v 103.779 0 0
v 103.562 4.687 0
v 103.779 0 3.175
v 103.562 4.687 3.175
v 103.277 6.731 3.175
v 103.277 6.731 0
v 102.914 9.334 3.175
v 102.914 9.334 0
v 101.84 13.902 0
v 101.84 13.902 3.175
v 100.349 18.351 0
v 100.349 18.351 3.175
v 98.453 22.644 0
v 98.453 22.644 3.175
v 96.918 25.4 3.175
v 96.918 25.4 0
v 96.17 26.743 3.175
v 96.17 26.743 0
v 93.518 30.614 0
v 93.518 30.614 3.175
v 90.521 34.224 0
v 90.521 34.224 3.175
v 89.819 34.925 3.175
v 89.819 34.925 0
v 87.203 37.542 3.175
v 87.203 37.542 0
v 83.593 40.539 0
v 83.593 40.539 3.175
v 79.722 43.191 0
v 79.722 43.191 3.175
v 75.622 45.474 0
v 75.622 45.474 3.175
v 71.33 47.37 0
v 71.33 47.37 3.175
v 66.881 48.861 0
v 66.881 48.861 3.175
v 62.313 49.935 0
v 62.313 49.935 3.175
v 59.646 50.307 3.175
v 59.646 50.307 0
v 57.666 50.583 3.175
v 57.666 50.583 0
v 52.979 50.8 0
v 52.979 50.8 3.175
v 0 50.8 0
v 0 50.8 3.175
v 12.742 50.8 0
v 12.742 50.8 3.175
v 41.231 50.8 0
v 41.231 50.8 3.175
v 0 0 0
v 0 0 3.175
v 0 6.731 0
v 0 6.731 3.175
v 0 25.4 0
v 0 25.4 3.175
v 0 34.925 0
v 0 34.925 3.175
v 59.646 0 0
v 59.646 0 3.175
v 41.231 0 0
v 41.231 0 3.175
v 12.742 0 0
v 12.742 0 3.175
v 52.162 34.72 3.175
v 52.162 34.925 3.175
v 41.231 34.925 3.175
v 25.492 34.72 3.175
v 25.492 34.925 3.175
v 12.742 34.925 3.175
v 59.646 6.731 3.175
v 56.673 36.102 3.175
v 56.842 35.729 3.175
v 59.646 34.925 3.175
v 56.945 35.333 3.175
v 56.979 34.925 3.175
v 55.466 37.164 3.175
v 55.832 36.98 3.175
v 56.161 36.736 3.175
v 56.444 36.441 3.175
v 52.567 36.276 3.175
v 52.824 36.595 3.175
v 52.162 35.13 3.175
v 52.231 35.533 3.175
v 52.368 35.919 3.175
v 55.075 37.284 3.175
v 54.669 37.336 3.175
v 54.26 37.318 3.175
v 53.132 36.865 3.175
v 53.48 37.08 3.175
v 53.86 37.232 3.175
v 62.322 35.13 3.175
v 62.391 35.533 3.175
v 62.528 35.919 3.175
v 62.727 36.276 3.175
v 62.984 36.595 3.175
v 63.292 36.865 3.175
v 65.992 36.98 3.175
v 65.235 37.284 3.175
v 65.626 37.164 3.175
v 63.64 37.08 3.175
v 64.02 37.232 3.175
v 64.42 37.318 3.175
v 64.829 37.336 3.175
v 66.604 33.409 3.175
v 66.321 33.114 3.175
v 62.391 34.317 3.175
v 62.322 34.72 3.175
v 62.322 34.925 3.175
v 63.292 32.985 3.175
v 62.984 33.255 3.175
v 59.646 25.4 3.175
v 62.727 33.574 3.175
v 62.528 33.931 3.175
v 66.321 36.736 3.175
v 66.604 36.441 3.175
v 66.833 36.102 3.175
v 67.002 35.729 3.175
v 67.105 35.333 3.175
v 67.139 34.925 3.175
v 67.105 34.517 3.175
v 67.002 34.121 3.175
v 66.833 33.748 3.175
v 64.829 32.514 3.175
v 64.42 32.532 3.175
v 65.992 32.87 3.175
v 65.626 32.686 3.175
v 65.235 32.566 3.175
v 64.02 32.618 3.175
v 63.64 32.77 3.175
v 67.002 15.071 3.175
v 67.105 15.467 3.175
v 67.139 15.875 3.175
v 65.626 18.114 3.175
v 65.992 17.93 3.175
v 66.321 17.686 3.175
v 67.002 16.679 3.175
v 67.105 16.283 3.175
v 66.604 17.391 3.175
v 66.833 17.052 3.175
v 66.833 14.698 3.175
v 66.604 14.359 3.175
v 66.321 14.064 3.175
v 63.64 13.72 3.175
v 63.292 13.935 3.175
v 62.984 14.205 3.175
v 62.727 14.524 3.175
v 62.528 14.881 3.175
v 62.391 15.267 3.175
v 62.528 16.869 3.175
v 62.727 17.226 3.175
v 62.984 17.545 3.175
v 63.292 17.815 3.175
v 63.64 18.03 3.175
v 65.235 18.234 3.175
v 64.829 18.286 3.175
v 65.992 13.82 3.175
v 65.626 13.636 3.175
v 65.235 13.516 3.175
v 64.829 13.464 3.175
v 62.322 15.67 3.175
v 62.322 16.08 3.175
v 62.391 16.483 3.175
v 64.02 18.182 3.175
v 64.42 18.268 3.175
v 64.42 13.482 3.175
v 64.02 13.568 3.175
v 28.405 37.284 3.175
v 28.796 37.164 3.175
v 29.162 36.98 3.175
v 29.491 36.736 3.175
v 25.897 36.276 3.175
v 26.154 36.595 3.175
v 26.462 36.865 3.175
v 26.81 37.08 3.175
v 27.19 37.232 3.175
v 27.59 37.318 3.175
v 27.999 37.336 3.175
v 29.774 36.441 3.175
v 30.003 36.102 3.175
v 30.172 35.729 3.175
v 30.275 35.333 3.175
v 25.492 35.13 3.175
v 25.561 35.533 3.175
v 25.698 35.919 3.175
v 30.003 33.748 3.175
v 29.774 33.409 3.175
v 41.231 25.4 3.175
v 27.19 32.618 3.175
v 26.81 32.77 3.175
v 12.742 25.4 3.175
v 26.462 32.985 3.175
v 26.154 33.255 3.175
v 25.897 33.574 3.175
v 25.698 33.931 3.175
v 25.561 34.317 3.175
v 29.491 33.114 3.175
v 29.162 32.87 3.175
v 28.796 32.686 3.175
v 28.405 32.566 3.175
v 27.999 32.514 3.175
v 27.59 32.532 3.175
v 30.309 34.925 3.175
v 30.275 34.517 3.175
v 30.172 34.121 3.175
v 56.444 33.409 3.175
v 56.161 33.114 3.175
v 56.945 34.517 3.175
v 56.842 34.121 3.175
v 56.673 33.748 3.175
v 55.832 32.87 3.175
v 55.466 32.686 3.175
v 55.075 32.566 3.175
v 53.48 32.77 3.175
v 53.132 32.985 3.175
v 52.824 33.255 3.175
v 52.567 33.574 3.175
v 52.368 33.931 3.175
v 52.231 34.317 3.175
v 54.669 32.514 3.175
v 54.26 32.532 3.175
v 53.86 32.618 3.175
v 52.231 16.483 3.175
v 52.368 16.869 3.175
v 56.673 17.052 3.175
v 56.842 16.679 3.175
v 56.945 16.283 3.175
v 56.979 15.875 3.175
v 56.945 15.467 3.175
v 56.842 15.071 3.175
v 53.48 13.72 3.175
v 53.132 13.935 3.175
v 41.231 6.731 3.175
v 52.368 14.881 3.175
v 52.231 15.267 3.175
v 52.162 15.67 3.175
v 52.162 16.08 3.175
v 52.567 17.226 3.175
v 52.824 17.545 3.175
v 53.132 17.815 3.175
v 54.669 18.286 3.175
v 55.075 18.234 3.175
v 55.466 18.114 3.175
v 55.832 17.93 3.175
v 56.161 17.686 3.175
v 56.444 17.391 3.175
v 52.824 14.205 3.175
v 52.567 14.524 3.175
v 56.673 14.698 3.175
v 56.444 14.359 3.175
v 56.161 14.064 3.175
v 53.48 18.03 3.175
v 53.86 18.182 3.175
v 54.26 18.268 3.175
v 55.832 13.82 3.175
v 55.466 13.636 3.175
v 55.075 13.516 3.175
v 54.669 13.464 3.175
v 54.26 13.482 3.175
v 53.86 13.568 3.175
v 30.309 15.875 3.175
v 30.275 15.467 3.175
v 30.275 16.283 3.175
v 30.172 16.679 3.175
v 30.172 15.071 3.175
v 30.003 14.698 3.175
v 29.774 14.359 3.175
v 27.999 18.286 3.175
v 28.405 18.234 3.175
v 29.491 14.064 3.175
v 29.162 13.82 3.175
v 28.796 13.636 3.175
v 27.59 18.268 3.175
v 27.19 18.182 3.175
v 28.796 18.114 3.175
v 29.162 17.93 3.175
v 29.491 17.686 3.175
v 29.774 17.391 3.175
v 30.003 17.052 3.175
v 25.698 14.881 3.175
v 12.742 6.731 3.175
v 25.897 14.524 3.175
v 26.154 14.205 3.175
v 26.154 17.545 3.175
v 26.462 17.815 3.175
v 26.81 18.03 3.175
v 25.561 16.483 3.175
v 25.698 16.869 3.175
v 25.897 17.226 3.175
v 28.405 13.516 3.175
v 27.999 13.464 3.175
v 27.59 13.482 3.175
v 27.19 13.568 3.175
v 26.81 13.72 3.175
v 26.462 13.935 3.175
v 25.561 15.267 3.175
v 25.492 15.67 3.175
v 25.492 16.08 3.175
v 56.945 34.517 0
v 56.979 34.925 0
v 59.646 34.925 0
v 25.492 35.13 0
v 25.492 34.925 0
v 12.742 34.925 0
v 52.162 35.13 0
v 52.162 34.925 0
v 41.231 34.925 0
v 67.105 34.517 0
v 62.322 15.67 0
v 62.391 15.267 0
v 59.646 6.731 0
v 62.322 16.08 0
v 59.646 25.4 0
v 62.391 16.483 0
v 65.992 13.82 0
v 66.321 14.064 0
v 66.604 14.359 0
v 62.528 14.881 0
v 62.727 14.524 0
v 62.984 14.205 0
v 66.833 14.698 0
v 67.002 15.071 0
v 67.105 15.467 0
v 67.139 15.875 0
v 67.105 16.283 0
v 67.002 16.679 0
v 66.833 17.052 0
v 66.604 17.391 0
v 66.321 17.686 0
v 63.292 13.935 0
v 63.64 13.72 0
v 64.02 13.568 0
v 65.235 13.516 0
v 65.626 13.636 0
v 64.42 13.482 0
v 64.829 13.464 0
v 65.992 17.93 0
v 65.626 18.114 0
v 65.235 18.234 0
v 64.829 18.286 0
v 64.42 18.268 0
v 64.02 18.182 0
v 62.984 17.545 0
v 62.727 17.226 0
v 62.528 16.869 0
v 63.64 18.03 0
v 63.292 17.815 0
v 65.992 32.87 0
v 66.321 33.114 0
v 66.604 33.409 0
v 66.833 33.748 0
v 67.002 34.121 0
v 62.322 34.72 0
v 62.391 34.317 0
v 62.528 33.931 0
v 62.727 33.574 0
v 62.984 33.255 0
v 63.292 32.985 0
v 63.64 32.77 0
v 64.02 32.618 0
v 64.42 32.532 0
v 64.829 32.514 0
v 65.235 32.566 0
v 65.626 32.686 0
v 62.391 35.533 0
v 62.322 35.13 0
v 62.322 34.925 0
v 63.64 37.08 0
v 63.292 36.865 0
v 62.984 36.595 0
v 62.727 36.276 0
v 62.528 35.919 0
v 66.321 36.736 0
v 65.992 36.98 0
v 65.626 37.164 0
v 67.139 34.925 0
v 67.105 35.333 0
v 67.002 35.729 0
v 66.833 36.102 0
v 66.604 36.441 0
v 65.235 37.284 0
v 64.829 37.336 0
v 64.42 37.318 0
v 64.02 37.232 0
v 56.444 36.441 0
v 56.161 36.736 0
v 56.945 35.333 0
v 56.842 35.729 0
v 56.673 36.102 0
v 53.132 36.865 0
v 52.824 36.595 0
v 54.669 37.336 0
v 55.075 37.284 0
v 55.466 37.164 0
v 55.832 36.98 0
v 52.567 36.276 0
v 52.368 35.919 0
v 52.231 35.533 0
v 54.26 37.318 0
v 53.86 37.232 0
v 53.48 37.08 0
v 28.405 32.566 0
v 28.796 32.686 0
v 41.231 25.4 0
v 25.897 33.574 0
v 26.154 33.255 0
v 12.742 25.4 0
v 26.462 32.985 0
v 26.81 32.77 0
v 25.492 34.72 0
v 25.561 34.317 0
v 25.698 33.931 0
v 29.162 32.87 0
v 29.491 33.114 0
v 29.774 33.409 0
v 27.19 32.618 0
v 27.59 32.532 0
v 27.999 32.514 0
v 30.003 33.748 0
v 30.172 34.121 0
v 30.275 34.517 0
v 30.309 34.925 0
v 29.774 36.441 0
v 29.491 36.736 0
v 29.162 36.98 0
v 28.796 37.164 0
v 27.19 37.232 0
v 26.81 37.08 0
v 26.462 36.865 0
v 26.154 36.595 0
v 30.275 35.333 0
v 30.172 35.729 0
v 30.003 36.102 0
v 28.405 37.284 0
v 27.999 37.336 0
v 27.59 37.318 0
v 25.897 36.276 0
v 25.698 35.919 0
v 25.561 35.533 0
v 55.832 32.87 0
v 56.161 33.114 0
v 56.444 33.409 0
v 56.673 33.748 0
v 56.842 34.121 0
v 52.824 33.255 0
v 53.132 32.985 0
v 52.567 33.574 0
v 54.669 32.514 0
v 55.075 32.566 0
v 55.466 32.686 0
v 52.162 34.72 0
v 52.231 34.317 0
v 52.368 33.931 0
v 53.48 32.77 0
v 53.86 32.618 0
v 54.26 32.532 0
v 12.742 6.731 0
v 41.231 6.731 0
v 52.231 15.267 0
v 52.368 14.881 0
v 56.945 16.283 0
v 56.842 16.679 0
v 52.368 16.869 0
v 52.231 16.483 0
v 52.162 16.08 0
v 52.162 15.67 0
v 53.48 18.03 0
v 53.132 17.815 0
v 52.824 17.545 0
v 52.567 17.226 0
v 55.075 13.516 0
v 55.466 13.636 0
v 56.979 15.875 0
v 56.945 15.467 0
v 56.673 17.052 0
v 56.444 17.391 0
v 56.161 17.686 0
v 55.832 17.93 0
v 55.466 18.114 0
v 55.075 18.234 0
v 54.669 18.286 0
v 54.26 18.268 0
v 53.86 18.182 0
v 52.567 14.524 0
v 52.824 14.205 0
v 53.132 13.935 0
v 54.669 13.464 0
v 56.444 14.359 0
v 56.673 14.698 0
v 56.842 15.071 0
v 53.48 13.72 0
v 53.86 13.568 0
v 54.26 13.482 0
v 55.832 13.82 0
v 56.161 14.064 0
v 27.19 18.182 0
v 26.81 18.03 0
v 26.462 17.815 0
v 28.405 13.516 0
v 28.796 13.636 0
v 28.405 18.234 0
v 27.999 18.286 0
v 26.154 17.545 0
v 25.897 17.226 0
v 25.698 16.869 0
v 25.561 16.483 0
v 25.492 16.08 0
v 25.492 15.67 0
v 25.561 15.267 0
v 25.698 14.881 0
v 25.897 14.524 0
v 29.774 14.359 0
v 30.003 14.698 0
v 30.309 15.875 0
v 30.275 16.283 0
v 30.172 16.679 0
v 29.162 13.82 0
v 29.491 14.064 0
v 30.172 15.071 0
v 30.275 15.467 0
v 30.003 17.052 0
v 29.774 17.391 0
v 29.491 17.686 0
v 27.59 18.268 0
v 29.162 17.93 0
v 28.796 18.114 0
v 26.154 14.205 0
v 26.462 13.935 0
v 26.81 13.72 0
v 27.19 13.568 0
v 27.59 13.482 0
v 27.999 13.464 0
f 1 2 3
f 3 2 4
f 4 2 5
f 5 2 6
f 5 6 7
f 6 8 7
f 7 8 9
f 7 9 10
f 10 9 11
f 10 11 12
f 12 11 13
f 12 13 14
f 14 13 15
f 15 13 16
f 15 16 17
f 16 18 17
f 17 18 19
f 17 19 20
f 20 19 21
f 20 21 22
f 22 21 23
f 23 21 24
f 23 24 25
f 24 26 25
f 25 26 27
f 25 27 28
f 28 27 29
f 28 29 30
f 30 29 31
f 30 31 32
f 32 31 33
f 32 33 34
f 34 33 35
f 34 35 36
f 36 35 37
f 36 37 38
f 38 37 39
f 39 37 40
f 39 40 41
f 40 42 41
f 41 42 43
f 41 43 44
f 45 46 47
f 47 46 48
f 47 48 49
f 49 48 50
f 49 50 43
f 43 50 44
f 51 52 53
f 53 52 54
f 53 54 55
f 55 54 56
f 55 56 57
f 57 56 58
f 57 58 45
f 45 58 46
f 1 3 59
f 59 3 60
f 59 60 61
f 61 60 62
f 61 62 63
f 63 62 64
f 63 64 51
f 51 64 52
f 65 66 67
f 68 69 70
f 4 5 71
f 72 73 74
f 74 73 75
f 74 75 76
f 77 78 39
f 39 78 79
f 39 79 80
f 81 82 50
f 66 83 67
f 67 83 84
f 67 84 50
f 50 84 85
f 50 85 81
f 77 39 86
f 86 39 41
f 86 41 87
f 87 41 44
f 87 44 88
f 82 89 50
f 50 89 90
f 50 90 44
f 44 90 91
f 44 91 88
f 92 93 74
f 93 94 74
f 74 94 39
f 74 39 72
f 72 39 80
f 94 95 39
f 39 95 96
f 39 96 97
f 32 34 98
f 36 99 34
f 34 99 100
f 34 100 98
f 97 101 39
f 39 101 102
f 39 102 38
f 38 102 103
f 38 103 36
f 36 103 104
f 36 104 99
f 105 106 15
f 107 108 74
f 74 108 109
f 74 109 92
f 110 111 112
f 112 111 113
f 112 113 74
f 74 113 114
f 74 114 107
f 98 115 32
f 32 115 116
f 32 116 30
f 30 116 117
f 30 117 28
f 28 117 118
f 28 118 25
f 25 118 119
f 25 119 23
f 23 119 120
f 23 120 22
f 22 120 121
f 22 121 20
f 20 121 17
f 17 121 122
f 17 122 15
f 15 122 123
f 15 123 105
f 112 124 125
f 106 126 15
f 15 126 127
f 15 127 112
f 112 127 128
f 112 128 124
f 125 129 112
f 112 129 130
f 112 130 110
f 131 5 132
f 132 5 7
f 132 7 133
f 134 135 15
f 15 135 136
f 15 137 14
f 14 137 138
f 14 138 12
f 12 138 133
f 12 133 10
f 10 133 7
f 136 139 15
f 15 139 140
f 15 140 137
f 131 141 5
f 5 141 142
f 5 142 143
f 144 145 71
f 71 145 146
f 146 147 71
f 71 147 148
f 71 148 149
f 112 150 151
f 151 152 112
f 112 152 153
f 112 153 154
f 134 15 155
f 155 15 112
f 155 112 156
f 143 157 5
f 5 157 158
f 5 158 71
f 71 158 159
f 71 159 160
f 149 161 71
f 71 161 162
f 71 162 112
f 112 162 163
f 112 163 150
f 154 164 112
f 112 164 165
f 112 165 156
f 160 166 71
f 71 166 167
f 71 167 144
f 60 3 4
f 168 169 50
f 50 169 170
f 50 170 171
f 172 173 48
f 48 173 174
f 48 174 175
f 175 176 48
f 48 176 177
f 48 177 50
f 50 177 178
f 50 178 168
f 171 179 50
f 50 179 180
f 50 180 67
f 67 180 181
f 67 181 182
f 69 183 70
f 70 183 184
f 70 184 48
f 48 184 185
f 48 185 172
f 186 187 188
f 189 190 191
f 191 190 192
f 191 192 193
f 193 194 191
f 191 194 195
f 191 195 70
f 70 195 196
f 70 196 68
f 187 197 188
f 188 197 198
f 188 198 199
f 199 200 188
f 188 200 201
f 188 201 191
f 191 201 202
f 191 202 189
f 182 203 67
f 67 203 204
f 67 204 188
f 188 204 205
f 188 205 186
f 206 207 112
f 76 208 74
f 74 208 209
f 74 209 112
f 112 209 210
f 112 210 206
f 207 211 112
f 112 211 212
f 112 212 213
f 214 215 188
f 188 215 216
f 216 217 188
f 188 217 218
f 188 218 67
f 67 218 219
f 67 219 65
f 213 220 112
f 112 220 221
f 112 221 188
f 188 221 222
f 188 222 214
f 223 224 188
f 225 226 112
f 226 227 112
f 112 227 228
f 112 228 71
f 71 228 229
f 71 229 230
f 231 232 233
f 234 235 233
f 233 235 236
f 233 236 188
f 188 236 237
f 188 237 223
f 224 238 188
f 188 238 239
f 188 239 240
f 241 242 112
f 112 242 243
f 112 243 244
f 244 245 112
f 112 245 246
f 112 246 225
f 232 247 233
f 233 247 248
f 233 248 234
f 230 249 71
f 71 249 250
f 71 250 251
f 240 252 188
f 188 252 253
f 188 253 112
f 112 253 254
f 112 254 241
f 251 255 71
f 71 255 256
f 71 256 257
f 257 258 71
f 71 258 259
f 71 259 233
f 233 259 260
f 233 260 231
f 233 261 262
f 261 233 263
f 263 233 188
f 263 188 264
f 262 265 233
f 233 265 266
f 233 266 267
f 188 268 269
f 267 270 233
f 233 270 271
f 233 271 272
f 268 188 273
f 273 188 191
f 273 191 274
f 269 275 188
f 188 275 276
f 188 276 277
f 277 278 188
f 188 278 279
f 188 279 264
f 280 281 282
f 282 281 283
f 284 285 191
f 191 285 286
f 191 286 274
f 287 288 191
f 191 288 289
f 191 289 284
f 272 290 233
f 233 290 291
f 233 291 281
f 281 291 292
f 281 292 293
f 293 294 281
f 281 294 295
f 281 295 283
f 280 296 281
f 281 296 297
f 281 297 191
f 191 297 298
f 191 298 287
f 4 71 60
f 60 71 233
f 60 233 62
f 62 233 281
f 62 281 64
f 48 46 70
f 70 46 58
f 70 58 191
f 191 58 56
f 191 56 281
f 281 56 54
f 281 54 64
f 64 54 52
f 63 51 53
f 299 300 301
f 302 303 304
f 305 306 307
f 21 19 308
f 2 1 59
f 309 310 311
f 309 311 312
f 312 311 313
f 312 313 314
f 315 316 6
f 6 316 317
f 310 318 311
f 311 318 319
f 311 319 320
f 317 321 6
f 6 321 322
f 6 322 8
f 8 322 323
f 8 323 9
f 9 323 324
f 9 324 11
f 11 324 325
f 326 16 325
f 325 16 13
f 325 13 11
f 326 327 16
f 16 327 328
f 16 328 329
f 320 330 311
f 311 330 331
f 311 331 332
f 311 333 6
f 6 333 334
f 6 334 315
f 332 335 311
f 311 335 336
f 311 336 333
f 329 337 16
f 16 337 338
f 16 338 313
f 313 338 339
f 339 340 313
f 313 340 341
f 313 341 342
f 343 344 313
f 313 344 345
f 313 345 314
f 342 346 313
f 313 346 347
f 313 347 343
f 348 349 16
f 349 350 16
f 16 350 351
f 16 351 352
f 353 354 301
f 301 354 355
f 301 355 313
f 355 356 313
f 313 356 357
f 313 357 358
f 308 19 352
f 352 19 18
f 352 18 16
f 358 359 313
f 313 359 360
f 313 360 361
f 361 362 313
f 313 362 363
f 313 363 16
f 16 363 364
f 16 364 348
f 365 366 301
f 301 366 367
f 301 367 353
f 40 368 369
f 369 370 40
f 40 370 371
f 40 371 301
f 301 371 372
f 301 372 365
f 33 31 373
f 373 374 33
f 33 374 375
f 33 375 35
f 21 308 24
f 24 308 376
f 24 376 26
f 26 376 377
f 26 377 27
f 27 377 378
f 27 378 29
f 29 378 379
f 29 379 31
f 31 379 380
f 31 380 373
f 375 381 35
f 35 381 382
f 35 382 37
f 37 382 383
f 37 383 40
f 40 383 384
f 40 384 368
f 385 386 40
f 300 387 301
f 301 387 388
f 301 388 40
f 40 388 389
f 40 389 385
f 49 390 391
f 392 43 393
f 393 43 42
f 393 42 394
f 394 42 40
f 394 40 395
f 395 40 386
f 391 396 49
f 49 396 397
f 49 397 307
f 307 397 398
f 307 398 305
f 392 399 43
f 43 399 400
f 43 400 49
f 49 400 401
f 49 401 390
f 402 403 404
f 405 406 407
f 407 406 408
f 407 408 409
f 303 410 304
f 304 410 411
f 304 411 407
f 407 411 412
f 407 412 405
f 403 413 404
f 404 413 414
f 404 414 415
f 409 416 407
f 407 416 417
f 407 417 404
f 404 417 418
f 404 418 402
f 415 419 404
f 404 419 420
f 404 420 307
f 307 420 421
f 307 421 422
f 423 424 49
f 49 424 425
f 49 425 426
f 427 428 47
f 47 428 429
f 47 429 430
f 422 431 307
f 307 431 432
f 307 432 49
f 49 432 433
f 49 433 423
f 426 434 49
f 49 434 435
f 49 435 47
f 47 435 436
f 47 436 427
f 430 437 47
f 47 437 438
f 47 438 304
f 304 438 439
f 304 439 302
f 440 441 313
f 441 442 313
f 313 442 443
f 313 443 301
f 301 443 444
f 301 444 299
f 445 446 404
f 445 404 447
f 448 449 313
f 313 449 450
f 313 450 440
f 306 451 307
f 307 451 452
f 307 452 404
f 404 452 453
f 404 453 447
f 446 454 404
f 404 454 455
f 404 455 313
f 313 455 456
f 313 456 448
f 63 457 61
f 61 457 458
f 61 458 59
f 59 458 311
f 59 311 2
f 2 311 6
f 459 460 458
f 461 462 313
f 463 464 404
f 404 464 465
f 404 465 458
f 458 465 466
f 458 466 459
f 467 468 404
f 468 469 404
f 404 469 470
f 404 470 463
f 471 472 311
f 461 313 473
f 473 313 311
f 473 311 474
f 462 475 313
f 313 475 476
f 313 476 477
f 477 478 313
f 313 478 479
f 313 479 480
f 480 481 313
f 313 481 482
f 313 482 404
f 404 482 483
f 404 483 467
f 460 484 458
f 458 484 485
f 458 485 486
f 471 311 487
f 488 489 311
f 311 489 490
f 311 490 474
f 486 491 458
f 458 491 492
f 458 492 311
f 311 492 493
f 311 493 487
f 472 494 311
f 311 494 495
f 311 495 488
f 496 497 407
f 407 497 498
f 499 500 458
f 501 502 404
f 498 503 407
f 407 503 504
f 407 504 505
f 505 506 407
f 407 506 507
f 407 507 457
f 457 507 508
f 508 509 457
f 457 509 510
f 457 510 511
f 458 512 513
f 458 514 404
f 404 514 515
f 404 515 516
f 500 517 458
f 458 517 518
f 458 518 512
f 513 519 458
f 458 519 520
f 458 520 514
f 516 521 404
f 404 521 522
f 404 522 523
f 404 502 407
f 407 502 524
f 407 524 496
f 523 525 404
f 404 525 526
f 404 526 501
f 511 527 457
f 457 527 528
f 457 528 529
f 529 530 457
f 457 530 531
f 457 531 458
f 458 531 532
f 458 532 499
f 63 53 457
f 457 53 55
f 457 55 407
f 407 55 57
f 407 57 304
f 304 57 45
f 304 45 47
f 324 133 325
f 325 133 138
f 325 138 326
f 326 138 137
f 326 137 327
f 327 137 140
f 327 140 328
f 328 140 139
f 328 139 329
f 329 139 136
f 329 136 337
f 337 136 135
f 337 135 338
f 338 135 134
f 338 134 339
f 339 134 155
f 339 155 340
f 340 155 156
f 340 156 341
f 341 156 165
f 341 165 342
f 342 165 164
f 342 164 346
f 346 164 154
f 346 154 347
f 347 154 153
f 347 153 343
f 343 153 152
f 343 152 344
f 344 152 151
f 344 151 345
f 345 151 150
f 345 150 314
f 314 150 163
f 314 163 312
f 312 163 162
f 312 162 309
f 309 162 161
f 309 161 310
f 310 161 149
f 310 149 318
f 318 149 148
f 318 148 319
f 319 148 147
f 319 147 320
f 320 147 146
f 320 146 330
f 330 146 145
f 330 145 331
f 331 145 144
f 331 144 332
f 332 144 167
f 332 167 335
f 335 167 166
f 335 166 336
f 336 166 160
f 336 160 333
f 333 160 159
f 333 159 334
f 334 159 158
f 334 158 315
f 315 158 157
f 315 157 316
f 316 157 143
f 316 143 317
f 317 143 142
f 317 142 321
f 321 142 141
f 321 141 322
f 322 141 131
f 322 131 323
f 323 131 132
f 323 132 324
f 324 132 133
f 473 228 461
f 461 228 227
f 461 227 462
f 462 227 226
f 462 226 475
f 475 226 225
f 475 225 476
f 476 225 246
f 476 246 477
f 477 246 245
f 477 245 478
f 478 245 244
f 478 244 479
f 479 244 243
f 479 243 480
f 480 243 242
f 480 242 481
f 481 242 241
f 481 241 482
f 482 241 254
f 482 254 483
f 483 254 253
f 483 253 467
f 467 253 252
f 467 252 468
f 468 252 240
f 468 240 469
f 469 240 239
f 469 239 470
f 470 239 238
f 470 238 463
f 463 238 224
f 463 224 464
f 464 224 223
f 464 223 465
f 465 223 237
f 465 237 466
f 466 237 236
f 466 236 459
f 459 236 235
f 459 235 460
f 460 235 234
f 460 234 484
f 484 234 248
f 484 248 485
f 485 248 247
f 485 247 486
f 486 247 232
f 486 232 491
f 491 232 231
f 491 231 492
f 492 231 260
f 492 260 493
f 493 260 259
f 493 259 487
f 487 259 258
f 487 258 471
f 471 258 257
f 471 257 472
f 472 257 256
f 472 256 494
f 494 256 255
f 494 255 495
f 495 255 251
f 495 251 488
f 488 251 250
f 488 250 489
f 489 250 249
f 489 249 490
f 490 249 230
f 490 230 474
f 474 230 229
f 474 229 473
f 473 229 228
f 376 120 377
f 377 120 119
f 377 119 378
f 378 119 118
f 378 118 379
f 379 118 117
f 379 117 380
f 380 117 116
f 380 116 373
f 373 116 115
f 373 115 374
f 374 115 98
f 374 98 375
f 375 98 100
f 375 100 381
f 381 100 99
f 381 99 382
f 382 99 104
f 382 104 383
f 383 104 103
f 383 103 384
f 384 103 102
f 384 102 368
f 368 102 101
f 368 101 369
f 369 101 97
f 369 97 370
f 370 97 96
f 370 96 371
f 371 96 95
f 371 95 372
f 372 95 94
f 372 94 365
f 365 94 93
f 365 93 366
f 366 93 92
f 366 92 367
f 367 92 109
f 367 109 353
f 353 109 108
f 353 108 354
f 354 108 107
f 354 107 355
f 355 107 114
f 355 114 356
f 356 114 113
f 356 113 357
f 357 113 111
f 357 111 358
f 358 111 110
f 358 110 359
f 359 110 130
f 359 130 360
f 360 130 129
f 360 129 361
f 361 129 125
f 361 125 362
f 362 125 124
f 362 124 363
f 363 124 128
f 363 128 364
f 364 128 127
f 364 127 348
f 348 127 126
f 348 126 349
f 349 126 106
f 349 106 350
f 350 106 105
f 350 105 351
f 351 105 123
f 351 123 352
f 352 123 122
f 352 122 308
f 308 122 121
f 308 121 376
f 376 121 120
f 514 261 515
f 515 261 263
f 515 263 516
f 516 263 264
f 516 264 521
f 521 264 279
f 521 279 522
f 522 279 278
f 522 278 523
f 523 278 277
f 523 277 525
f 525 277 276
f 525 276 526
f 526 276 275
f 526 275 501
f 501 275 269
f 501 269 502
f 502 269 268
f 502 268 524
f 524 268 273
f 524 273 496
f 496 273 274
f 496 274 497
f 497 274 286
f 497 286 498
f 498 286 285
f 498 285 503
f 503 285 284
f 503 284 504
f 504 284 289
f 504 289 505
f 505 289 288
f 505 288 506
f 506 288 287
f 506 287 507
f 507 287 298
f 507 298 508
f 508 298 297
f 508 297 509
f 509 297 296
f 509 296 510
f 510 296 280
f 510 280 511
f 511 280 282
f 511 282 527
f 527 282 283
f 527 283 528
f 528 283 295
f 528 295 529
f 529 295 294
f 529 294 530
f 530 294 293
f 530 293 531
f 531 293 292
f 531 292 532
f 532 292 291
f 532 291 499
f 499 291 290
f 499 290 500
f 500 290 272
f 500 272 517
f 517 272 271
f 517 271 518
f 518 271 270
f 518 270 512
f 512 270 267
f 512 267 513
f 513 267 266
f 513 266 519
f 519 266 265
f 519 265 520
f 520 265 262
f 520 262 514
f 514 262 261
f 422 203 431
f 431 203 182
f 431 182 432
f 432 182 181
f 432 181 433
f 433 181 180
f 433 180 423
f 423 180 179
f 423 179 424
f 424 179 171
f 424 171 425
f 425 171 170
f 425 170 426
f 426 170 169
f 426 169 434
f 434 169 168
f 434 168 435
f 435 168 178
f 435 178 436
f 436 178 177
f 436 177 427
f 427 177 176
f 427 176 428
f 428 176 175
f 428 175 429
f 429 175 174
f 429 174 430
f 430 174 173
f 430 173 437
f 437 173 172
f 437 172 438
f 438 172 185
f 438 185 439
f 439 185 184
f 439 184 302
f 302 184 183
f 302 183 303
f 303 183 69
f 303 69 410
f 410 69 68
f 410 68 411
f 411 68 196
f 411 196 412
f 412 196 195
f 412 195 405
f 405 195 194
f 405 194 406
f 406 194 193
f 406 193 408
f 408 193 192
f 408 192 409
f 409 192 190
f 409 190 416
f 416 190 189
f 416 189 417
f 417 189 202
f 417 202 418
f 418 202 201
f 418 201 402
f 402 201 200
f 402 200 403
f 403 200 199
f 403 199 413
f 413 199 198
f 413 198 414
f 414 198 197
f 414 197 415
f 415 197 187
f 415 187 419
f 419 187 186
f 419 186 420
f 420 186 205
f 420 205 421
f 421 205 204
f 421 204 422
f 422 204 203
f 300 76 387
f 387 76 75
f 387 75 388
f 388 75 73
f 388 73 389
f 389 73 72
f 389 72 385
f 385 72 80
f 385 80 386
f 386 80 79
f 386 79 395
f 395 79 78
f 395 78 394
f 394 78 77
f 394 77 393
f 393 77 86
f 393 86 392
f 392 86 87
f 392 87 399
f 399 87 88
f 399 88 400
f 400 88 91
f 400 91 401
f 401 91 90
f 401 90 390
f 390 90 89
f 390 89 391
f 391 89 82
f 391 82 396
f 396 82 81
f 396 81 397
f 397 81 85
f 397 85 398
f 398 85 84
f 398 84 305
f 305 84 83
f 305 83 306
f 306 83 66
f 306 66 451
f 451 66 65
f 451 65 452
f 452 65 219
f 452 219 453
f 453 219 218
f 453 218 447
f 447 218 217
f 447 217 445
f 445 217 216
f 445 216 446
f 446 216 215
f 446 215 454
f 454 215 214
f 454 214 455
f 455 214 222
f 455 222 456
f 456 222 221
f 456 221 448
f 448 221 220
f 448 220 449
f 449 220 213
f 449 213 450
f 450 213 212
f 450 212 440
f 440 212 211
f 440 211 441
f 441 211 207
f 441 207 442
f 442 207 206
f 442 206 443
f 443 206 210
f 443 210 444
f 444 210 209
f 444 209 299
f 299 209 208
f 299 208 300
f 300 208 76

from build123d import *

# Parameters (mm, degrees)
BOSS_EXTRUDE1_DEPTH     = 3.175
SKETCH3_R               = 2.413
CUT_EXTRUDE1_DEPTH      = 1
CUT_EXTRUDE1_DEPTH_BACK = 4.175


with BuildPart() as part:
    # Sketch1 → Boss-Extrude1 (new body)
    with BuildSketch(Plane.XY):
        with BuildLine():
            Line((0, 50.8), (0, 0))
            Line((0, 0), (103.778975516, 0))
            ThreePointArc((103.778975516, 0), (88.9, 35.921024484), (52.978975516, 50.8))
            Line((52.978975516, 50.8), (0, 50.8))
        make_face()
    extrude(amount=BOSS_EXTRUDE1_DEPTH)

    # Sketch3 → Cut-Extrude1 (cut, two sides)
    with BuildSketch(Plane.XY.offset(3.175)) as cut_extrude1_sk:
        with Locations((64.726475516, 15.875)):
            Circle(SKETCH3_R)
        with Locations((64.726475516, 34.925)):
            Circle(SKETCH3_R)
        with Locations((27.896475516, 15.875)):
            Circle(SKETCH3_R)
        with Locations((27.896475516, 34.925)):
            Circle(SKETCH3_R)
        with Locations((54.566475516, 34.925)):
            Circle(SKETCH3_R)
        with Locations((54.566475516, 15.875)):
            Circle(SKETCH3_R)
    extrude(amount=CUT_EXTRUDE1_DEPTH, mode=Mode.SUBTRACT)
    extrude(cut_extrude1_sk.sketch, amount=-CUT_EXTRUDE1_DEPTH_BACK, mode=Mode.SUBTRACT)


solid = part.part
